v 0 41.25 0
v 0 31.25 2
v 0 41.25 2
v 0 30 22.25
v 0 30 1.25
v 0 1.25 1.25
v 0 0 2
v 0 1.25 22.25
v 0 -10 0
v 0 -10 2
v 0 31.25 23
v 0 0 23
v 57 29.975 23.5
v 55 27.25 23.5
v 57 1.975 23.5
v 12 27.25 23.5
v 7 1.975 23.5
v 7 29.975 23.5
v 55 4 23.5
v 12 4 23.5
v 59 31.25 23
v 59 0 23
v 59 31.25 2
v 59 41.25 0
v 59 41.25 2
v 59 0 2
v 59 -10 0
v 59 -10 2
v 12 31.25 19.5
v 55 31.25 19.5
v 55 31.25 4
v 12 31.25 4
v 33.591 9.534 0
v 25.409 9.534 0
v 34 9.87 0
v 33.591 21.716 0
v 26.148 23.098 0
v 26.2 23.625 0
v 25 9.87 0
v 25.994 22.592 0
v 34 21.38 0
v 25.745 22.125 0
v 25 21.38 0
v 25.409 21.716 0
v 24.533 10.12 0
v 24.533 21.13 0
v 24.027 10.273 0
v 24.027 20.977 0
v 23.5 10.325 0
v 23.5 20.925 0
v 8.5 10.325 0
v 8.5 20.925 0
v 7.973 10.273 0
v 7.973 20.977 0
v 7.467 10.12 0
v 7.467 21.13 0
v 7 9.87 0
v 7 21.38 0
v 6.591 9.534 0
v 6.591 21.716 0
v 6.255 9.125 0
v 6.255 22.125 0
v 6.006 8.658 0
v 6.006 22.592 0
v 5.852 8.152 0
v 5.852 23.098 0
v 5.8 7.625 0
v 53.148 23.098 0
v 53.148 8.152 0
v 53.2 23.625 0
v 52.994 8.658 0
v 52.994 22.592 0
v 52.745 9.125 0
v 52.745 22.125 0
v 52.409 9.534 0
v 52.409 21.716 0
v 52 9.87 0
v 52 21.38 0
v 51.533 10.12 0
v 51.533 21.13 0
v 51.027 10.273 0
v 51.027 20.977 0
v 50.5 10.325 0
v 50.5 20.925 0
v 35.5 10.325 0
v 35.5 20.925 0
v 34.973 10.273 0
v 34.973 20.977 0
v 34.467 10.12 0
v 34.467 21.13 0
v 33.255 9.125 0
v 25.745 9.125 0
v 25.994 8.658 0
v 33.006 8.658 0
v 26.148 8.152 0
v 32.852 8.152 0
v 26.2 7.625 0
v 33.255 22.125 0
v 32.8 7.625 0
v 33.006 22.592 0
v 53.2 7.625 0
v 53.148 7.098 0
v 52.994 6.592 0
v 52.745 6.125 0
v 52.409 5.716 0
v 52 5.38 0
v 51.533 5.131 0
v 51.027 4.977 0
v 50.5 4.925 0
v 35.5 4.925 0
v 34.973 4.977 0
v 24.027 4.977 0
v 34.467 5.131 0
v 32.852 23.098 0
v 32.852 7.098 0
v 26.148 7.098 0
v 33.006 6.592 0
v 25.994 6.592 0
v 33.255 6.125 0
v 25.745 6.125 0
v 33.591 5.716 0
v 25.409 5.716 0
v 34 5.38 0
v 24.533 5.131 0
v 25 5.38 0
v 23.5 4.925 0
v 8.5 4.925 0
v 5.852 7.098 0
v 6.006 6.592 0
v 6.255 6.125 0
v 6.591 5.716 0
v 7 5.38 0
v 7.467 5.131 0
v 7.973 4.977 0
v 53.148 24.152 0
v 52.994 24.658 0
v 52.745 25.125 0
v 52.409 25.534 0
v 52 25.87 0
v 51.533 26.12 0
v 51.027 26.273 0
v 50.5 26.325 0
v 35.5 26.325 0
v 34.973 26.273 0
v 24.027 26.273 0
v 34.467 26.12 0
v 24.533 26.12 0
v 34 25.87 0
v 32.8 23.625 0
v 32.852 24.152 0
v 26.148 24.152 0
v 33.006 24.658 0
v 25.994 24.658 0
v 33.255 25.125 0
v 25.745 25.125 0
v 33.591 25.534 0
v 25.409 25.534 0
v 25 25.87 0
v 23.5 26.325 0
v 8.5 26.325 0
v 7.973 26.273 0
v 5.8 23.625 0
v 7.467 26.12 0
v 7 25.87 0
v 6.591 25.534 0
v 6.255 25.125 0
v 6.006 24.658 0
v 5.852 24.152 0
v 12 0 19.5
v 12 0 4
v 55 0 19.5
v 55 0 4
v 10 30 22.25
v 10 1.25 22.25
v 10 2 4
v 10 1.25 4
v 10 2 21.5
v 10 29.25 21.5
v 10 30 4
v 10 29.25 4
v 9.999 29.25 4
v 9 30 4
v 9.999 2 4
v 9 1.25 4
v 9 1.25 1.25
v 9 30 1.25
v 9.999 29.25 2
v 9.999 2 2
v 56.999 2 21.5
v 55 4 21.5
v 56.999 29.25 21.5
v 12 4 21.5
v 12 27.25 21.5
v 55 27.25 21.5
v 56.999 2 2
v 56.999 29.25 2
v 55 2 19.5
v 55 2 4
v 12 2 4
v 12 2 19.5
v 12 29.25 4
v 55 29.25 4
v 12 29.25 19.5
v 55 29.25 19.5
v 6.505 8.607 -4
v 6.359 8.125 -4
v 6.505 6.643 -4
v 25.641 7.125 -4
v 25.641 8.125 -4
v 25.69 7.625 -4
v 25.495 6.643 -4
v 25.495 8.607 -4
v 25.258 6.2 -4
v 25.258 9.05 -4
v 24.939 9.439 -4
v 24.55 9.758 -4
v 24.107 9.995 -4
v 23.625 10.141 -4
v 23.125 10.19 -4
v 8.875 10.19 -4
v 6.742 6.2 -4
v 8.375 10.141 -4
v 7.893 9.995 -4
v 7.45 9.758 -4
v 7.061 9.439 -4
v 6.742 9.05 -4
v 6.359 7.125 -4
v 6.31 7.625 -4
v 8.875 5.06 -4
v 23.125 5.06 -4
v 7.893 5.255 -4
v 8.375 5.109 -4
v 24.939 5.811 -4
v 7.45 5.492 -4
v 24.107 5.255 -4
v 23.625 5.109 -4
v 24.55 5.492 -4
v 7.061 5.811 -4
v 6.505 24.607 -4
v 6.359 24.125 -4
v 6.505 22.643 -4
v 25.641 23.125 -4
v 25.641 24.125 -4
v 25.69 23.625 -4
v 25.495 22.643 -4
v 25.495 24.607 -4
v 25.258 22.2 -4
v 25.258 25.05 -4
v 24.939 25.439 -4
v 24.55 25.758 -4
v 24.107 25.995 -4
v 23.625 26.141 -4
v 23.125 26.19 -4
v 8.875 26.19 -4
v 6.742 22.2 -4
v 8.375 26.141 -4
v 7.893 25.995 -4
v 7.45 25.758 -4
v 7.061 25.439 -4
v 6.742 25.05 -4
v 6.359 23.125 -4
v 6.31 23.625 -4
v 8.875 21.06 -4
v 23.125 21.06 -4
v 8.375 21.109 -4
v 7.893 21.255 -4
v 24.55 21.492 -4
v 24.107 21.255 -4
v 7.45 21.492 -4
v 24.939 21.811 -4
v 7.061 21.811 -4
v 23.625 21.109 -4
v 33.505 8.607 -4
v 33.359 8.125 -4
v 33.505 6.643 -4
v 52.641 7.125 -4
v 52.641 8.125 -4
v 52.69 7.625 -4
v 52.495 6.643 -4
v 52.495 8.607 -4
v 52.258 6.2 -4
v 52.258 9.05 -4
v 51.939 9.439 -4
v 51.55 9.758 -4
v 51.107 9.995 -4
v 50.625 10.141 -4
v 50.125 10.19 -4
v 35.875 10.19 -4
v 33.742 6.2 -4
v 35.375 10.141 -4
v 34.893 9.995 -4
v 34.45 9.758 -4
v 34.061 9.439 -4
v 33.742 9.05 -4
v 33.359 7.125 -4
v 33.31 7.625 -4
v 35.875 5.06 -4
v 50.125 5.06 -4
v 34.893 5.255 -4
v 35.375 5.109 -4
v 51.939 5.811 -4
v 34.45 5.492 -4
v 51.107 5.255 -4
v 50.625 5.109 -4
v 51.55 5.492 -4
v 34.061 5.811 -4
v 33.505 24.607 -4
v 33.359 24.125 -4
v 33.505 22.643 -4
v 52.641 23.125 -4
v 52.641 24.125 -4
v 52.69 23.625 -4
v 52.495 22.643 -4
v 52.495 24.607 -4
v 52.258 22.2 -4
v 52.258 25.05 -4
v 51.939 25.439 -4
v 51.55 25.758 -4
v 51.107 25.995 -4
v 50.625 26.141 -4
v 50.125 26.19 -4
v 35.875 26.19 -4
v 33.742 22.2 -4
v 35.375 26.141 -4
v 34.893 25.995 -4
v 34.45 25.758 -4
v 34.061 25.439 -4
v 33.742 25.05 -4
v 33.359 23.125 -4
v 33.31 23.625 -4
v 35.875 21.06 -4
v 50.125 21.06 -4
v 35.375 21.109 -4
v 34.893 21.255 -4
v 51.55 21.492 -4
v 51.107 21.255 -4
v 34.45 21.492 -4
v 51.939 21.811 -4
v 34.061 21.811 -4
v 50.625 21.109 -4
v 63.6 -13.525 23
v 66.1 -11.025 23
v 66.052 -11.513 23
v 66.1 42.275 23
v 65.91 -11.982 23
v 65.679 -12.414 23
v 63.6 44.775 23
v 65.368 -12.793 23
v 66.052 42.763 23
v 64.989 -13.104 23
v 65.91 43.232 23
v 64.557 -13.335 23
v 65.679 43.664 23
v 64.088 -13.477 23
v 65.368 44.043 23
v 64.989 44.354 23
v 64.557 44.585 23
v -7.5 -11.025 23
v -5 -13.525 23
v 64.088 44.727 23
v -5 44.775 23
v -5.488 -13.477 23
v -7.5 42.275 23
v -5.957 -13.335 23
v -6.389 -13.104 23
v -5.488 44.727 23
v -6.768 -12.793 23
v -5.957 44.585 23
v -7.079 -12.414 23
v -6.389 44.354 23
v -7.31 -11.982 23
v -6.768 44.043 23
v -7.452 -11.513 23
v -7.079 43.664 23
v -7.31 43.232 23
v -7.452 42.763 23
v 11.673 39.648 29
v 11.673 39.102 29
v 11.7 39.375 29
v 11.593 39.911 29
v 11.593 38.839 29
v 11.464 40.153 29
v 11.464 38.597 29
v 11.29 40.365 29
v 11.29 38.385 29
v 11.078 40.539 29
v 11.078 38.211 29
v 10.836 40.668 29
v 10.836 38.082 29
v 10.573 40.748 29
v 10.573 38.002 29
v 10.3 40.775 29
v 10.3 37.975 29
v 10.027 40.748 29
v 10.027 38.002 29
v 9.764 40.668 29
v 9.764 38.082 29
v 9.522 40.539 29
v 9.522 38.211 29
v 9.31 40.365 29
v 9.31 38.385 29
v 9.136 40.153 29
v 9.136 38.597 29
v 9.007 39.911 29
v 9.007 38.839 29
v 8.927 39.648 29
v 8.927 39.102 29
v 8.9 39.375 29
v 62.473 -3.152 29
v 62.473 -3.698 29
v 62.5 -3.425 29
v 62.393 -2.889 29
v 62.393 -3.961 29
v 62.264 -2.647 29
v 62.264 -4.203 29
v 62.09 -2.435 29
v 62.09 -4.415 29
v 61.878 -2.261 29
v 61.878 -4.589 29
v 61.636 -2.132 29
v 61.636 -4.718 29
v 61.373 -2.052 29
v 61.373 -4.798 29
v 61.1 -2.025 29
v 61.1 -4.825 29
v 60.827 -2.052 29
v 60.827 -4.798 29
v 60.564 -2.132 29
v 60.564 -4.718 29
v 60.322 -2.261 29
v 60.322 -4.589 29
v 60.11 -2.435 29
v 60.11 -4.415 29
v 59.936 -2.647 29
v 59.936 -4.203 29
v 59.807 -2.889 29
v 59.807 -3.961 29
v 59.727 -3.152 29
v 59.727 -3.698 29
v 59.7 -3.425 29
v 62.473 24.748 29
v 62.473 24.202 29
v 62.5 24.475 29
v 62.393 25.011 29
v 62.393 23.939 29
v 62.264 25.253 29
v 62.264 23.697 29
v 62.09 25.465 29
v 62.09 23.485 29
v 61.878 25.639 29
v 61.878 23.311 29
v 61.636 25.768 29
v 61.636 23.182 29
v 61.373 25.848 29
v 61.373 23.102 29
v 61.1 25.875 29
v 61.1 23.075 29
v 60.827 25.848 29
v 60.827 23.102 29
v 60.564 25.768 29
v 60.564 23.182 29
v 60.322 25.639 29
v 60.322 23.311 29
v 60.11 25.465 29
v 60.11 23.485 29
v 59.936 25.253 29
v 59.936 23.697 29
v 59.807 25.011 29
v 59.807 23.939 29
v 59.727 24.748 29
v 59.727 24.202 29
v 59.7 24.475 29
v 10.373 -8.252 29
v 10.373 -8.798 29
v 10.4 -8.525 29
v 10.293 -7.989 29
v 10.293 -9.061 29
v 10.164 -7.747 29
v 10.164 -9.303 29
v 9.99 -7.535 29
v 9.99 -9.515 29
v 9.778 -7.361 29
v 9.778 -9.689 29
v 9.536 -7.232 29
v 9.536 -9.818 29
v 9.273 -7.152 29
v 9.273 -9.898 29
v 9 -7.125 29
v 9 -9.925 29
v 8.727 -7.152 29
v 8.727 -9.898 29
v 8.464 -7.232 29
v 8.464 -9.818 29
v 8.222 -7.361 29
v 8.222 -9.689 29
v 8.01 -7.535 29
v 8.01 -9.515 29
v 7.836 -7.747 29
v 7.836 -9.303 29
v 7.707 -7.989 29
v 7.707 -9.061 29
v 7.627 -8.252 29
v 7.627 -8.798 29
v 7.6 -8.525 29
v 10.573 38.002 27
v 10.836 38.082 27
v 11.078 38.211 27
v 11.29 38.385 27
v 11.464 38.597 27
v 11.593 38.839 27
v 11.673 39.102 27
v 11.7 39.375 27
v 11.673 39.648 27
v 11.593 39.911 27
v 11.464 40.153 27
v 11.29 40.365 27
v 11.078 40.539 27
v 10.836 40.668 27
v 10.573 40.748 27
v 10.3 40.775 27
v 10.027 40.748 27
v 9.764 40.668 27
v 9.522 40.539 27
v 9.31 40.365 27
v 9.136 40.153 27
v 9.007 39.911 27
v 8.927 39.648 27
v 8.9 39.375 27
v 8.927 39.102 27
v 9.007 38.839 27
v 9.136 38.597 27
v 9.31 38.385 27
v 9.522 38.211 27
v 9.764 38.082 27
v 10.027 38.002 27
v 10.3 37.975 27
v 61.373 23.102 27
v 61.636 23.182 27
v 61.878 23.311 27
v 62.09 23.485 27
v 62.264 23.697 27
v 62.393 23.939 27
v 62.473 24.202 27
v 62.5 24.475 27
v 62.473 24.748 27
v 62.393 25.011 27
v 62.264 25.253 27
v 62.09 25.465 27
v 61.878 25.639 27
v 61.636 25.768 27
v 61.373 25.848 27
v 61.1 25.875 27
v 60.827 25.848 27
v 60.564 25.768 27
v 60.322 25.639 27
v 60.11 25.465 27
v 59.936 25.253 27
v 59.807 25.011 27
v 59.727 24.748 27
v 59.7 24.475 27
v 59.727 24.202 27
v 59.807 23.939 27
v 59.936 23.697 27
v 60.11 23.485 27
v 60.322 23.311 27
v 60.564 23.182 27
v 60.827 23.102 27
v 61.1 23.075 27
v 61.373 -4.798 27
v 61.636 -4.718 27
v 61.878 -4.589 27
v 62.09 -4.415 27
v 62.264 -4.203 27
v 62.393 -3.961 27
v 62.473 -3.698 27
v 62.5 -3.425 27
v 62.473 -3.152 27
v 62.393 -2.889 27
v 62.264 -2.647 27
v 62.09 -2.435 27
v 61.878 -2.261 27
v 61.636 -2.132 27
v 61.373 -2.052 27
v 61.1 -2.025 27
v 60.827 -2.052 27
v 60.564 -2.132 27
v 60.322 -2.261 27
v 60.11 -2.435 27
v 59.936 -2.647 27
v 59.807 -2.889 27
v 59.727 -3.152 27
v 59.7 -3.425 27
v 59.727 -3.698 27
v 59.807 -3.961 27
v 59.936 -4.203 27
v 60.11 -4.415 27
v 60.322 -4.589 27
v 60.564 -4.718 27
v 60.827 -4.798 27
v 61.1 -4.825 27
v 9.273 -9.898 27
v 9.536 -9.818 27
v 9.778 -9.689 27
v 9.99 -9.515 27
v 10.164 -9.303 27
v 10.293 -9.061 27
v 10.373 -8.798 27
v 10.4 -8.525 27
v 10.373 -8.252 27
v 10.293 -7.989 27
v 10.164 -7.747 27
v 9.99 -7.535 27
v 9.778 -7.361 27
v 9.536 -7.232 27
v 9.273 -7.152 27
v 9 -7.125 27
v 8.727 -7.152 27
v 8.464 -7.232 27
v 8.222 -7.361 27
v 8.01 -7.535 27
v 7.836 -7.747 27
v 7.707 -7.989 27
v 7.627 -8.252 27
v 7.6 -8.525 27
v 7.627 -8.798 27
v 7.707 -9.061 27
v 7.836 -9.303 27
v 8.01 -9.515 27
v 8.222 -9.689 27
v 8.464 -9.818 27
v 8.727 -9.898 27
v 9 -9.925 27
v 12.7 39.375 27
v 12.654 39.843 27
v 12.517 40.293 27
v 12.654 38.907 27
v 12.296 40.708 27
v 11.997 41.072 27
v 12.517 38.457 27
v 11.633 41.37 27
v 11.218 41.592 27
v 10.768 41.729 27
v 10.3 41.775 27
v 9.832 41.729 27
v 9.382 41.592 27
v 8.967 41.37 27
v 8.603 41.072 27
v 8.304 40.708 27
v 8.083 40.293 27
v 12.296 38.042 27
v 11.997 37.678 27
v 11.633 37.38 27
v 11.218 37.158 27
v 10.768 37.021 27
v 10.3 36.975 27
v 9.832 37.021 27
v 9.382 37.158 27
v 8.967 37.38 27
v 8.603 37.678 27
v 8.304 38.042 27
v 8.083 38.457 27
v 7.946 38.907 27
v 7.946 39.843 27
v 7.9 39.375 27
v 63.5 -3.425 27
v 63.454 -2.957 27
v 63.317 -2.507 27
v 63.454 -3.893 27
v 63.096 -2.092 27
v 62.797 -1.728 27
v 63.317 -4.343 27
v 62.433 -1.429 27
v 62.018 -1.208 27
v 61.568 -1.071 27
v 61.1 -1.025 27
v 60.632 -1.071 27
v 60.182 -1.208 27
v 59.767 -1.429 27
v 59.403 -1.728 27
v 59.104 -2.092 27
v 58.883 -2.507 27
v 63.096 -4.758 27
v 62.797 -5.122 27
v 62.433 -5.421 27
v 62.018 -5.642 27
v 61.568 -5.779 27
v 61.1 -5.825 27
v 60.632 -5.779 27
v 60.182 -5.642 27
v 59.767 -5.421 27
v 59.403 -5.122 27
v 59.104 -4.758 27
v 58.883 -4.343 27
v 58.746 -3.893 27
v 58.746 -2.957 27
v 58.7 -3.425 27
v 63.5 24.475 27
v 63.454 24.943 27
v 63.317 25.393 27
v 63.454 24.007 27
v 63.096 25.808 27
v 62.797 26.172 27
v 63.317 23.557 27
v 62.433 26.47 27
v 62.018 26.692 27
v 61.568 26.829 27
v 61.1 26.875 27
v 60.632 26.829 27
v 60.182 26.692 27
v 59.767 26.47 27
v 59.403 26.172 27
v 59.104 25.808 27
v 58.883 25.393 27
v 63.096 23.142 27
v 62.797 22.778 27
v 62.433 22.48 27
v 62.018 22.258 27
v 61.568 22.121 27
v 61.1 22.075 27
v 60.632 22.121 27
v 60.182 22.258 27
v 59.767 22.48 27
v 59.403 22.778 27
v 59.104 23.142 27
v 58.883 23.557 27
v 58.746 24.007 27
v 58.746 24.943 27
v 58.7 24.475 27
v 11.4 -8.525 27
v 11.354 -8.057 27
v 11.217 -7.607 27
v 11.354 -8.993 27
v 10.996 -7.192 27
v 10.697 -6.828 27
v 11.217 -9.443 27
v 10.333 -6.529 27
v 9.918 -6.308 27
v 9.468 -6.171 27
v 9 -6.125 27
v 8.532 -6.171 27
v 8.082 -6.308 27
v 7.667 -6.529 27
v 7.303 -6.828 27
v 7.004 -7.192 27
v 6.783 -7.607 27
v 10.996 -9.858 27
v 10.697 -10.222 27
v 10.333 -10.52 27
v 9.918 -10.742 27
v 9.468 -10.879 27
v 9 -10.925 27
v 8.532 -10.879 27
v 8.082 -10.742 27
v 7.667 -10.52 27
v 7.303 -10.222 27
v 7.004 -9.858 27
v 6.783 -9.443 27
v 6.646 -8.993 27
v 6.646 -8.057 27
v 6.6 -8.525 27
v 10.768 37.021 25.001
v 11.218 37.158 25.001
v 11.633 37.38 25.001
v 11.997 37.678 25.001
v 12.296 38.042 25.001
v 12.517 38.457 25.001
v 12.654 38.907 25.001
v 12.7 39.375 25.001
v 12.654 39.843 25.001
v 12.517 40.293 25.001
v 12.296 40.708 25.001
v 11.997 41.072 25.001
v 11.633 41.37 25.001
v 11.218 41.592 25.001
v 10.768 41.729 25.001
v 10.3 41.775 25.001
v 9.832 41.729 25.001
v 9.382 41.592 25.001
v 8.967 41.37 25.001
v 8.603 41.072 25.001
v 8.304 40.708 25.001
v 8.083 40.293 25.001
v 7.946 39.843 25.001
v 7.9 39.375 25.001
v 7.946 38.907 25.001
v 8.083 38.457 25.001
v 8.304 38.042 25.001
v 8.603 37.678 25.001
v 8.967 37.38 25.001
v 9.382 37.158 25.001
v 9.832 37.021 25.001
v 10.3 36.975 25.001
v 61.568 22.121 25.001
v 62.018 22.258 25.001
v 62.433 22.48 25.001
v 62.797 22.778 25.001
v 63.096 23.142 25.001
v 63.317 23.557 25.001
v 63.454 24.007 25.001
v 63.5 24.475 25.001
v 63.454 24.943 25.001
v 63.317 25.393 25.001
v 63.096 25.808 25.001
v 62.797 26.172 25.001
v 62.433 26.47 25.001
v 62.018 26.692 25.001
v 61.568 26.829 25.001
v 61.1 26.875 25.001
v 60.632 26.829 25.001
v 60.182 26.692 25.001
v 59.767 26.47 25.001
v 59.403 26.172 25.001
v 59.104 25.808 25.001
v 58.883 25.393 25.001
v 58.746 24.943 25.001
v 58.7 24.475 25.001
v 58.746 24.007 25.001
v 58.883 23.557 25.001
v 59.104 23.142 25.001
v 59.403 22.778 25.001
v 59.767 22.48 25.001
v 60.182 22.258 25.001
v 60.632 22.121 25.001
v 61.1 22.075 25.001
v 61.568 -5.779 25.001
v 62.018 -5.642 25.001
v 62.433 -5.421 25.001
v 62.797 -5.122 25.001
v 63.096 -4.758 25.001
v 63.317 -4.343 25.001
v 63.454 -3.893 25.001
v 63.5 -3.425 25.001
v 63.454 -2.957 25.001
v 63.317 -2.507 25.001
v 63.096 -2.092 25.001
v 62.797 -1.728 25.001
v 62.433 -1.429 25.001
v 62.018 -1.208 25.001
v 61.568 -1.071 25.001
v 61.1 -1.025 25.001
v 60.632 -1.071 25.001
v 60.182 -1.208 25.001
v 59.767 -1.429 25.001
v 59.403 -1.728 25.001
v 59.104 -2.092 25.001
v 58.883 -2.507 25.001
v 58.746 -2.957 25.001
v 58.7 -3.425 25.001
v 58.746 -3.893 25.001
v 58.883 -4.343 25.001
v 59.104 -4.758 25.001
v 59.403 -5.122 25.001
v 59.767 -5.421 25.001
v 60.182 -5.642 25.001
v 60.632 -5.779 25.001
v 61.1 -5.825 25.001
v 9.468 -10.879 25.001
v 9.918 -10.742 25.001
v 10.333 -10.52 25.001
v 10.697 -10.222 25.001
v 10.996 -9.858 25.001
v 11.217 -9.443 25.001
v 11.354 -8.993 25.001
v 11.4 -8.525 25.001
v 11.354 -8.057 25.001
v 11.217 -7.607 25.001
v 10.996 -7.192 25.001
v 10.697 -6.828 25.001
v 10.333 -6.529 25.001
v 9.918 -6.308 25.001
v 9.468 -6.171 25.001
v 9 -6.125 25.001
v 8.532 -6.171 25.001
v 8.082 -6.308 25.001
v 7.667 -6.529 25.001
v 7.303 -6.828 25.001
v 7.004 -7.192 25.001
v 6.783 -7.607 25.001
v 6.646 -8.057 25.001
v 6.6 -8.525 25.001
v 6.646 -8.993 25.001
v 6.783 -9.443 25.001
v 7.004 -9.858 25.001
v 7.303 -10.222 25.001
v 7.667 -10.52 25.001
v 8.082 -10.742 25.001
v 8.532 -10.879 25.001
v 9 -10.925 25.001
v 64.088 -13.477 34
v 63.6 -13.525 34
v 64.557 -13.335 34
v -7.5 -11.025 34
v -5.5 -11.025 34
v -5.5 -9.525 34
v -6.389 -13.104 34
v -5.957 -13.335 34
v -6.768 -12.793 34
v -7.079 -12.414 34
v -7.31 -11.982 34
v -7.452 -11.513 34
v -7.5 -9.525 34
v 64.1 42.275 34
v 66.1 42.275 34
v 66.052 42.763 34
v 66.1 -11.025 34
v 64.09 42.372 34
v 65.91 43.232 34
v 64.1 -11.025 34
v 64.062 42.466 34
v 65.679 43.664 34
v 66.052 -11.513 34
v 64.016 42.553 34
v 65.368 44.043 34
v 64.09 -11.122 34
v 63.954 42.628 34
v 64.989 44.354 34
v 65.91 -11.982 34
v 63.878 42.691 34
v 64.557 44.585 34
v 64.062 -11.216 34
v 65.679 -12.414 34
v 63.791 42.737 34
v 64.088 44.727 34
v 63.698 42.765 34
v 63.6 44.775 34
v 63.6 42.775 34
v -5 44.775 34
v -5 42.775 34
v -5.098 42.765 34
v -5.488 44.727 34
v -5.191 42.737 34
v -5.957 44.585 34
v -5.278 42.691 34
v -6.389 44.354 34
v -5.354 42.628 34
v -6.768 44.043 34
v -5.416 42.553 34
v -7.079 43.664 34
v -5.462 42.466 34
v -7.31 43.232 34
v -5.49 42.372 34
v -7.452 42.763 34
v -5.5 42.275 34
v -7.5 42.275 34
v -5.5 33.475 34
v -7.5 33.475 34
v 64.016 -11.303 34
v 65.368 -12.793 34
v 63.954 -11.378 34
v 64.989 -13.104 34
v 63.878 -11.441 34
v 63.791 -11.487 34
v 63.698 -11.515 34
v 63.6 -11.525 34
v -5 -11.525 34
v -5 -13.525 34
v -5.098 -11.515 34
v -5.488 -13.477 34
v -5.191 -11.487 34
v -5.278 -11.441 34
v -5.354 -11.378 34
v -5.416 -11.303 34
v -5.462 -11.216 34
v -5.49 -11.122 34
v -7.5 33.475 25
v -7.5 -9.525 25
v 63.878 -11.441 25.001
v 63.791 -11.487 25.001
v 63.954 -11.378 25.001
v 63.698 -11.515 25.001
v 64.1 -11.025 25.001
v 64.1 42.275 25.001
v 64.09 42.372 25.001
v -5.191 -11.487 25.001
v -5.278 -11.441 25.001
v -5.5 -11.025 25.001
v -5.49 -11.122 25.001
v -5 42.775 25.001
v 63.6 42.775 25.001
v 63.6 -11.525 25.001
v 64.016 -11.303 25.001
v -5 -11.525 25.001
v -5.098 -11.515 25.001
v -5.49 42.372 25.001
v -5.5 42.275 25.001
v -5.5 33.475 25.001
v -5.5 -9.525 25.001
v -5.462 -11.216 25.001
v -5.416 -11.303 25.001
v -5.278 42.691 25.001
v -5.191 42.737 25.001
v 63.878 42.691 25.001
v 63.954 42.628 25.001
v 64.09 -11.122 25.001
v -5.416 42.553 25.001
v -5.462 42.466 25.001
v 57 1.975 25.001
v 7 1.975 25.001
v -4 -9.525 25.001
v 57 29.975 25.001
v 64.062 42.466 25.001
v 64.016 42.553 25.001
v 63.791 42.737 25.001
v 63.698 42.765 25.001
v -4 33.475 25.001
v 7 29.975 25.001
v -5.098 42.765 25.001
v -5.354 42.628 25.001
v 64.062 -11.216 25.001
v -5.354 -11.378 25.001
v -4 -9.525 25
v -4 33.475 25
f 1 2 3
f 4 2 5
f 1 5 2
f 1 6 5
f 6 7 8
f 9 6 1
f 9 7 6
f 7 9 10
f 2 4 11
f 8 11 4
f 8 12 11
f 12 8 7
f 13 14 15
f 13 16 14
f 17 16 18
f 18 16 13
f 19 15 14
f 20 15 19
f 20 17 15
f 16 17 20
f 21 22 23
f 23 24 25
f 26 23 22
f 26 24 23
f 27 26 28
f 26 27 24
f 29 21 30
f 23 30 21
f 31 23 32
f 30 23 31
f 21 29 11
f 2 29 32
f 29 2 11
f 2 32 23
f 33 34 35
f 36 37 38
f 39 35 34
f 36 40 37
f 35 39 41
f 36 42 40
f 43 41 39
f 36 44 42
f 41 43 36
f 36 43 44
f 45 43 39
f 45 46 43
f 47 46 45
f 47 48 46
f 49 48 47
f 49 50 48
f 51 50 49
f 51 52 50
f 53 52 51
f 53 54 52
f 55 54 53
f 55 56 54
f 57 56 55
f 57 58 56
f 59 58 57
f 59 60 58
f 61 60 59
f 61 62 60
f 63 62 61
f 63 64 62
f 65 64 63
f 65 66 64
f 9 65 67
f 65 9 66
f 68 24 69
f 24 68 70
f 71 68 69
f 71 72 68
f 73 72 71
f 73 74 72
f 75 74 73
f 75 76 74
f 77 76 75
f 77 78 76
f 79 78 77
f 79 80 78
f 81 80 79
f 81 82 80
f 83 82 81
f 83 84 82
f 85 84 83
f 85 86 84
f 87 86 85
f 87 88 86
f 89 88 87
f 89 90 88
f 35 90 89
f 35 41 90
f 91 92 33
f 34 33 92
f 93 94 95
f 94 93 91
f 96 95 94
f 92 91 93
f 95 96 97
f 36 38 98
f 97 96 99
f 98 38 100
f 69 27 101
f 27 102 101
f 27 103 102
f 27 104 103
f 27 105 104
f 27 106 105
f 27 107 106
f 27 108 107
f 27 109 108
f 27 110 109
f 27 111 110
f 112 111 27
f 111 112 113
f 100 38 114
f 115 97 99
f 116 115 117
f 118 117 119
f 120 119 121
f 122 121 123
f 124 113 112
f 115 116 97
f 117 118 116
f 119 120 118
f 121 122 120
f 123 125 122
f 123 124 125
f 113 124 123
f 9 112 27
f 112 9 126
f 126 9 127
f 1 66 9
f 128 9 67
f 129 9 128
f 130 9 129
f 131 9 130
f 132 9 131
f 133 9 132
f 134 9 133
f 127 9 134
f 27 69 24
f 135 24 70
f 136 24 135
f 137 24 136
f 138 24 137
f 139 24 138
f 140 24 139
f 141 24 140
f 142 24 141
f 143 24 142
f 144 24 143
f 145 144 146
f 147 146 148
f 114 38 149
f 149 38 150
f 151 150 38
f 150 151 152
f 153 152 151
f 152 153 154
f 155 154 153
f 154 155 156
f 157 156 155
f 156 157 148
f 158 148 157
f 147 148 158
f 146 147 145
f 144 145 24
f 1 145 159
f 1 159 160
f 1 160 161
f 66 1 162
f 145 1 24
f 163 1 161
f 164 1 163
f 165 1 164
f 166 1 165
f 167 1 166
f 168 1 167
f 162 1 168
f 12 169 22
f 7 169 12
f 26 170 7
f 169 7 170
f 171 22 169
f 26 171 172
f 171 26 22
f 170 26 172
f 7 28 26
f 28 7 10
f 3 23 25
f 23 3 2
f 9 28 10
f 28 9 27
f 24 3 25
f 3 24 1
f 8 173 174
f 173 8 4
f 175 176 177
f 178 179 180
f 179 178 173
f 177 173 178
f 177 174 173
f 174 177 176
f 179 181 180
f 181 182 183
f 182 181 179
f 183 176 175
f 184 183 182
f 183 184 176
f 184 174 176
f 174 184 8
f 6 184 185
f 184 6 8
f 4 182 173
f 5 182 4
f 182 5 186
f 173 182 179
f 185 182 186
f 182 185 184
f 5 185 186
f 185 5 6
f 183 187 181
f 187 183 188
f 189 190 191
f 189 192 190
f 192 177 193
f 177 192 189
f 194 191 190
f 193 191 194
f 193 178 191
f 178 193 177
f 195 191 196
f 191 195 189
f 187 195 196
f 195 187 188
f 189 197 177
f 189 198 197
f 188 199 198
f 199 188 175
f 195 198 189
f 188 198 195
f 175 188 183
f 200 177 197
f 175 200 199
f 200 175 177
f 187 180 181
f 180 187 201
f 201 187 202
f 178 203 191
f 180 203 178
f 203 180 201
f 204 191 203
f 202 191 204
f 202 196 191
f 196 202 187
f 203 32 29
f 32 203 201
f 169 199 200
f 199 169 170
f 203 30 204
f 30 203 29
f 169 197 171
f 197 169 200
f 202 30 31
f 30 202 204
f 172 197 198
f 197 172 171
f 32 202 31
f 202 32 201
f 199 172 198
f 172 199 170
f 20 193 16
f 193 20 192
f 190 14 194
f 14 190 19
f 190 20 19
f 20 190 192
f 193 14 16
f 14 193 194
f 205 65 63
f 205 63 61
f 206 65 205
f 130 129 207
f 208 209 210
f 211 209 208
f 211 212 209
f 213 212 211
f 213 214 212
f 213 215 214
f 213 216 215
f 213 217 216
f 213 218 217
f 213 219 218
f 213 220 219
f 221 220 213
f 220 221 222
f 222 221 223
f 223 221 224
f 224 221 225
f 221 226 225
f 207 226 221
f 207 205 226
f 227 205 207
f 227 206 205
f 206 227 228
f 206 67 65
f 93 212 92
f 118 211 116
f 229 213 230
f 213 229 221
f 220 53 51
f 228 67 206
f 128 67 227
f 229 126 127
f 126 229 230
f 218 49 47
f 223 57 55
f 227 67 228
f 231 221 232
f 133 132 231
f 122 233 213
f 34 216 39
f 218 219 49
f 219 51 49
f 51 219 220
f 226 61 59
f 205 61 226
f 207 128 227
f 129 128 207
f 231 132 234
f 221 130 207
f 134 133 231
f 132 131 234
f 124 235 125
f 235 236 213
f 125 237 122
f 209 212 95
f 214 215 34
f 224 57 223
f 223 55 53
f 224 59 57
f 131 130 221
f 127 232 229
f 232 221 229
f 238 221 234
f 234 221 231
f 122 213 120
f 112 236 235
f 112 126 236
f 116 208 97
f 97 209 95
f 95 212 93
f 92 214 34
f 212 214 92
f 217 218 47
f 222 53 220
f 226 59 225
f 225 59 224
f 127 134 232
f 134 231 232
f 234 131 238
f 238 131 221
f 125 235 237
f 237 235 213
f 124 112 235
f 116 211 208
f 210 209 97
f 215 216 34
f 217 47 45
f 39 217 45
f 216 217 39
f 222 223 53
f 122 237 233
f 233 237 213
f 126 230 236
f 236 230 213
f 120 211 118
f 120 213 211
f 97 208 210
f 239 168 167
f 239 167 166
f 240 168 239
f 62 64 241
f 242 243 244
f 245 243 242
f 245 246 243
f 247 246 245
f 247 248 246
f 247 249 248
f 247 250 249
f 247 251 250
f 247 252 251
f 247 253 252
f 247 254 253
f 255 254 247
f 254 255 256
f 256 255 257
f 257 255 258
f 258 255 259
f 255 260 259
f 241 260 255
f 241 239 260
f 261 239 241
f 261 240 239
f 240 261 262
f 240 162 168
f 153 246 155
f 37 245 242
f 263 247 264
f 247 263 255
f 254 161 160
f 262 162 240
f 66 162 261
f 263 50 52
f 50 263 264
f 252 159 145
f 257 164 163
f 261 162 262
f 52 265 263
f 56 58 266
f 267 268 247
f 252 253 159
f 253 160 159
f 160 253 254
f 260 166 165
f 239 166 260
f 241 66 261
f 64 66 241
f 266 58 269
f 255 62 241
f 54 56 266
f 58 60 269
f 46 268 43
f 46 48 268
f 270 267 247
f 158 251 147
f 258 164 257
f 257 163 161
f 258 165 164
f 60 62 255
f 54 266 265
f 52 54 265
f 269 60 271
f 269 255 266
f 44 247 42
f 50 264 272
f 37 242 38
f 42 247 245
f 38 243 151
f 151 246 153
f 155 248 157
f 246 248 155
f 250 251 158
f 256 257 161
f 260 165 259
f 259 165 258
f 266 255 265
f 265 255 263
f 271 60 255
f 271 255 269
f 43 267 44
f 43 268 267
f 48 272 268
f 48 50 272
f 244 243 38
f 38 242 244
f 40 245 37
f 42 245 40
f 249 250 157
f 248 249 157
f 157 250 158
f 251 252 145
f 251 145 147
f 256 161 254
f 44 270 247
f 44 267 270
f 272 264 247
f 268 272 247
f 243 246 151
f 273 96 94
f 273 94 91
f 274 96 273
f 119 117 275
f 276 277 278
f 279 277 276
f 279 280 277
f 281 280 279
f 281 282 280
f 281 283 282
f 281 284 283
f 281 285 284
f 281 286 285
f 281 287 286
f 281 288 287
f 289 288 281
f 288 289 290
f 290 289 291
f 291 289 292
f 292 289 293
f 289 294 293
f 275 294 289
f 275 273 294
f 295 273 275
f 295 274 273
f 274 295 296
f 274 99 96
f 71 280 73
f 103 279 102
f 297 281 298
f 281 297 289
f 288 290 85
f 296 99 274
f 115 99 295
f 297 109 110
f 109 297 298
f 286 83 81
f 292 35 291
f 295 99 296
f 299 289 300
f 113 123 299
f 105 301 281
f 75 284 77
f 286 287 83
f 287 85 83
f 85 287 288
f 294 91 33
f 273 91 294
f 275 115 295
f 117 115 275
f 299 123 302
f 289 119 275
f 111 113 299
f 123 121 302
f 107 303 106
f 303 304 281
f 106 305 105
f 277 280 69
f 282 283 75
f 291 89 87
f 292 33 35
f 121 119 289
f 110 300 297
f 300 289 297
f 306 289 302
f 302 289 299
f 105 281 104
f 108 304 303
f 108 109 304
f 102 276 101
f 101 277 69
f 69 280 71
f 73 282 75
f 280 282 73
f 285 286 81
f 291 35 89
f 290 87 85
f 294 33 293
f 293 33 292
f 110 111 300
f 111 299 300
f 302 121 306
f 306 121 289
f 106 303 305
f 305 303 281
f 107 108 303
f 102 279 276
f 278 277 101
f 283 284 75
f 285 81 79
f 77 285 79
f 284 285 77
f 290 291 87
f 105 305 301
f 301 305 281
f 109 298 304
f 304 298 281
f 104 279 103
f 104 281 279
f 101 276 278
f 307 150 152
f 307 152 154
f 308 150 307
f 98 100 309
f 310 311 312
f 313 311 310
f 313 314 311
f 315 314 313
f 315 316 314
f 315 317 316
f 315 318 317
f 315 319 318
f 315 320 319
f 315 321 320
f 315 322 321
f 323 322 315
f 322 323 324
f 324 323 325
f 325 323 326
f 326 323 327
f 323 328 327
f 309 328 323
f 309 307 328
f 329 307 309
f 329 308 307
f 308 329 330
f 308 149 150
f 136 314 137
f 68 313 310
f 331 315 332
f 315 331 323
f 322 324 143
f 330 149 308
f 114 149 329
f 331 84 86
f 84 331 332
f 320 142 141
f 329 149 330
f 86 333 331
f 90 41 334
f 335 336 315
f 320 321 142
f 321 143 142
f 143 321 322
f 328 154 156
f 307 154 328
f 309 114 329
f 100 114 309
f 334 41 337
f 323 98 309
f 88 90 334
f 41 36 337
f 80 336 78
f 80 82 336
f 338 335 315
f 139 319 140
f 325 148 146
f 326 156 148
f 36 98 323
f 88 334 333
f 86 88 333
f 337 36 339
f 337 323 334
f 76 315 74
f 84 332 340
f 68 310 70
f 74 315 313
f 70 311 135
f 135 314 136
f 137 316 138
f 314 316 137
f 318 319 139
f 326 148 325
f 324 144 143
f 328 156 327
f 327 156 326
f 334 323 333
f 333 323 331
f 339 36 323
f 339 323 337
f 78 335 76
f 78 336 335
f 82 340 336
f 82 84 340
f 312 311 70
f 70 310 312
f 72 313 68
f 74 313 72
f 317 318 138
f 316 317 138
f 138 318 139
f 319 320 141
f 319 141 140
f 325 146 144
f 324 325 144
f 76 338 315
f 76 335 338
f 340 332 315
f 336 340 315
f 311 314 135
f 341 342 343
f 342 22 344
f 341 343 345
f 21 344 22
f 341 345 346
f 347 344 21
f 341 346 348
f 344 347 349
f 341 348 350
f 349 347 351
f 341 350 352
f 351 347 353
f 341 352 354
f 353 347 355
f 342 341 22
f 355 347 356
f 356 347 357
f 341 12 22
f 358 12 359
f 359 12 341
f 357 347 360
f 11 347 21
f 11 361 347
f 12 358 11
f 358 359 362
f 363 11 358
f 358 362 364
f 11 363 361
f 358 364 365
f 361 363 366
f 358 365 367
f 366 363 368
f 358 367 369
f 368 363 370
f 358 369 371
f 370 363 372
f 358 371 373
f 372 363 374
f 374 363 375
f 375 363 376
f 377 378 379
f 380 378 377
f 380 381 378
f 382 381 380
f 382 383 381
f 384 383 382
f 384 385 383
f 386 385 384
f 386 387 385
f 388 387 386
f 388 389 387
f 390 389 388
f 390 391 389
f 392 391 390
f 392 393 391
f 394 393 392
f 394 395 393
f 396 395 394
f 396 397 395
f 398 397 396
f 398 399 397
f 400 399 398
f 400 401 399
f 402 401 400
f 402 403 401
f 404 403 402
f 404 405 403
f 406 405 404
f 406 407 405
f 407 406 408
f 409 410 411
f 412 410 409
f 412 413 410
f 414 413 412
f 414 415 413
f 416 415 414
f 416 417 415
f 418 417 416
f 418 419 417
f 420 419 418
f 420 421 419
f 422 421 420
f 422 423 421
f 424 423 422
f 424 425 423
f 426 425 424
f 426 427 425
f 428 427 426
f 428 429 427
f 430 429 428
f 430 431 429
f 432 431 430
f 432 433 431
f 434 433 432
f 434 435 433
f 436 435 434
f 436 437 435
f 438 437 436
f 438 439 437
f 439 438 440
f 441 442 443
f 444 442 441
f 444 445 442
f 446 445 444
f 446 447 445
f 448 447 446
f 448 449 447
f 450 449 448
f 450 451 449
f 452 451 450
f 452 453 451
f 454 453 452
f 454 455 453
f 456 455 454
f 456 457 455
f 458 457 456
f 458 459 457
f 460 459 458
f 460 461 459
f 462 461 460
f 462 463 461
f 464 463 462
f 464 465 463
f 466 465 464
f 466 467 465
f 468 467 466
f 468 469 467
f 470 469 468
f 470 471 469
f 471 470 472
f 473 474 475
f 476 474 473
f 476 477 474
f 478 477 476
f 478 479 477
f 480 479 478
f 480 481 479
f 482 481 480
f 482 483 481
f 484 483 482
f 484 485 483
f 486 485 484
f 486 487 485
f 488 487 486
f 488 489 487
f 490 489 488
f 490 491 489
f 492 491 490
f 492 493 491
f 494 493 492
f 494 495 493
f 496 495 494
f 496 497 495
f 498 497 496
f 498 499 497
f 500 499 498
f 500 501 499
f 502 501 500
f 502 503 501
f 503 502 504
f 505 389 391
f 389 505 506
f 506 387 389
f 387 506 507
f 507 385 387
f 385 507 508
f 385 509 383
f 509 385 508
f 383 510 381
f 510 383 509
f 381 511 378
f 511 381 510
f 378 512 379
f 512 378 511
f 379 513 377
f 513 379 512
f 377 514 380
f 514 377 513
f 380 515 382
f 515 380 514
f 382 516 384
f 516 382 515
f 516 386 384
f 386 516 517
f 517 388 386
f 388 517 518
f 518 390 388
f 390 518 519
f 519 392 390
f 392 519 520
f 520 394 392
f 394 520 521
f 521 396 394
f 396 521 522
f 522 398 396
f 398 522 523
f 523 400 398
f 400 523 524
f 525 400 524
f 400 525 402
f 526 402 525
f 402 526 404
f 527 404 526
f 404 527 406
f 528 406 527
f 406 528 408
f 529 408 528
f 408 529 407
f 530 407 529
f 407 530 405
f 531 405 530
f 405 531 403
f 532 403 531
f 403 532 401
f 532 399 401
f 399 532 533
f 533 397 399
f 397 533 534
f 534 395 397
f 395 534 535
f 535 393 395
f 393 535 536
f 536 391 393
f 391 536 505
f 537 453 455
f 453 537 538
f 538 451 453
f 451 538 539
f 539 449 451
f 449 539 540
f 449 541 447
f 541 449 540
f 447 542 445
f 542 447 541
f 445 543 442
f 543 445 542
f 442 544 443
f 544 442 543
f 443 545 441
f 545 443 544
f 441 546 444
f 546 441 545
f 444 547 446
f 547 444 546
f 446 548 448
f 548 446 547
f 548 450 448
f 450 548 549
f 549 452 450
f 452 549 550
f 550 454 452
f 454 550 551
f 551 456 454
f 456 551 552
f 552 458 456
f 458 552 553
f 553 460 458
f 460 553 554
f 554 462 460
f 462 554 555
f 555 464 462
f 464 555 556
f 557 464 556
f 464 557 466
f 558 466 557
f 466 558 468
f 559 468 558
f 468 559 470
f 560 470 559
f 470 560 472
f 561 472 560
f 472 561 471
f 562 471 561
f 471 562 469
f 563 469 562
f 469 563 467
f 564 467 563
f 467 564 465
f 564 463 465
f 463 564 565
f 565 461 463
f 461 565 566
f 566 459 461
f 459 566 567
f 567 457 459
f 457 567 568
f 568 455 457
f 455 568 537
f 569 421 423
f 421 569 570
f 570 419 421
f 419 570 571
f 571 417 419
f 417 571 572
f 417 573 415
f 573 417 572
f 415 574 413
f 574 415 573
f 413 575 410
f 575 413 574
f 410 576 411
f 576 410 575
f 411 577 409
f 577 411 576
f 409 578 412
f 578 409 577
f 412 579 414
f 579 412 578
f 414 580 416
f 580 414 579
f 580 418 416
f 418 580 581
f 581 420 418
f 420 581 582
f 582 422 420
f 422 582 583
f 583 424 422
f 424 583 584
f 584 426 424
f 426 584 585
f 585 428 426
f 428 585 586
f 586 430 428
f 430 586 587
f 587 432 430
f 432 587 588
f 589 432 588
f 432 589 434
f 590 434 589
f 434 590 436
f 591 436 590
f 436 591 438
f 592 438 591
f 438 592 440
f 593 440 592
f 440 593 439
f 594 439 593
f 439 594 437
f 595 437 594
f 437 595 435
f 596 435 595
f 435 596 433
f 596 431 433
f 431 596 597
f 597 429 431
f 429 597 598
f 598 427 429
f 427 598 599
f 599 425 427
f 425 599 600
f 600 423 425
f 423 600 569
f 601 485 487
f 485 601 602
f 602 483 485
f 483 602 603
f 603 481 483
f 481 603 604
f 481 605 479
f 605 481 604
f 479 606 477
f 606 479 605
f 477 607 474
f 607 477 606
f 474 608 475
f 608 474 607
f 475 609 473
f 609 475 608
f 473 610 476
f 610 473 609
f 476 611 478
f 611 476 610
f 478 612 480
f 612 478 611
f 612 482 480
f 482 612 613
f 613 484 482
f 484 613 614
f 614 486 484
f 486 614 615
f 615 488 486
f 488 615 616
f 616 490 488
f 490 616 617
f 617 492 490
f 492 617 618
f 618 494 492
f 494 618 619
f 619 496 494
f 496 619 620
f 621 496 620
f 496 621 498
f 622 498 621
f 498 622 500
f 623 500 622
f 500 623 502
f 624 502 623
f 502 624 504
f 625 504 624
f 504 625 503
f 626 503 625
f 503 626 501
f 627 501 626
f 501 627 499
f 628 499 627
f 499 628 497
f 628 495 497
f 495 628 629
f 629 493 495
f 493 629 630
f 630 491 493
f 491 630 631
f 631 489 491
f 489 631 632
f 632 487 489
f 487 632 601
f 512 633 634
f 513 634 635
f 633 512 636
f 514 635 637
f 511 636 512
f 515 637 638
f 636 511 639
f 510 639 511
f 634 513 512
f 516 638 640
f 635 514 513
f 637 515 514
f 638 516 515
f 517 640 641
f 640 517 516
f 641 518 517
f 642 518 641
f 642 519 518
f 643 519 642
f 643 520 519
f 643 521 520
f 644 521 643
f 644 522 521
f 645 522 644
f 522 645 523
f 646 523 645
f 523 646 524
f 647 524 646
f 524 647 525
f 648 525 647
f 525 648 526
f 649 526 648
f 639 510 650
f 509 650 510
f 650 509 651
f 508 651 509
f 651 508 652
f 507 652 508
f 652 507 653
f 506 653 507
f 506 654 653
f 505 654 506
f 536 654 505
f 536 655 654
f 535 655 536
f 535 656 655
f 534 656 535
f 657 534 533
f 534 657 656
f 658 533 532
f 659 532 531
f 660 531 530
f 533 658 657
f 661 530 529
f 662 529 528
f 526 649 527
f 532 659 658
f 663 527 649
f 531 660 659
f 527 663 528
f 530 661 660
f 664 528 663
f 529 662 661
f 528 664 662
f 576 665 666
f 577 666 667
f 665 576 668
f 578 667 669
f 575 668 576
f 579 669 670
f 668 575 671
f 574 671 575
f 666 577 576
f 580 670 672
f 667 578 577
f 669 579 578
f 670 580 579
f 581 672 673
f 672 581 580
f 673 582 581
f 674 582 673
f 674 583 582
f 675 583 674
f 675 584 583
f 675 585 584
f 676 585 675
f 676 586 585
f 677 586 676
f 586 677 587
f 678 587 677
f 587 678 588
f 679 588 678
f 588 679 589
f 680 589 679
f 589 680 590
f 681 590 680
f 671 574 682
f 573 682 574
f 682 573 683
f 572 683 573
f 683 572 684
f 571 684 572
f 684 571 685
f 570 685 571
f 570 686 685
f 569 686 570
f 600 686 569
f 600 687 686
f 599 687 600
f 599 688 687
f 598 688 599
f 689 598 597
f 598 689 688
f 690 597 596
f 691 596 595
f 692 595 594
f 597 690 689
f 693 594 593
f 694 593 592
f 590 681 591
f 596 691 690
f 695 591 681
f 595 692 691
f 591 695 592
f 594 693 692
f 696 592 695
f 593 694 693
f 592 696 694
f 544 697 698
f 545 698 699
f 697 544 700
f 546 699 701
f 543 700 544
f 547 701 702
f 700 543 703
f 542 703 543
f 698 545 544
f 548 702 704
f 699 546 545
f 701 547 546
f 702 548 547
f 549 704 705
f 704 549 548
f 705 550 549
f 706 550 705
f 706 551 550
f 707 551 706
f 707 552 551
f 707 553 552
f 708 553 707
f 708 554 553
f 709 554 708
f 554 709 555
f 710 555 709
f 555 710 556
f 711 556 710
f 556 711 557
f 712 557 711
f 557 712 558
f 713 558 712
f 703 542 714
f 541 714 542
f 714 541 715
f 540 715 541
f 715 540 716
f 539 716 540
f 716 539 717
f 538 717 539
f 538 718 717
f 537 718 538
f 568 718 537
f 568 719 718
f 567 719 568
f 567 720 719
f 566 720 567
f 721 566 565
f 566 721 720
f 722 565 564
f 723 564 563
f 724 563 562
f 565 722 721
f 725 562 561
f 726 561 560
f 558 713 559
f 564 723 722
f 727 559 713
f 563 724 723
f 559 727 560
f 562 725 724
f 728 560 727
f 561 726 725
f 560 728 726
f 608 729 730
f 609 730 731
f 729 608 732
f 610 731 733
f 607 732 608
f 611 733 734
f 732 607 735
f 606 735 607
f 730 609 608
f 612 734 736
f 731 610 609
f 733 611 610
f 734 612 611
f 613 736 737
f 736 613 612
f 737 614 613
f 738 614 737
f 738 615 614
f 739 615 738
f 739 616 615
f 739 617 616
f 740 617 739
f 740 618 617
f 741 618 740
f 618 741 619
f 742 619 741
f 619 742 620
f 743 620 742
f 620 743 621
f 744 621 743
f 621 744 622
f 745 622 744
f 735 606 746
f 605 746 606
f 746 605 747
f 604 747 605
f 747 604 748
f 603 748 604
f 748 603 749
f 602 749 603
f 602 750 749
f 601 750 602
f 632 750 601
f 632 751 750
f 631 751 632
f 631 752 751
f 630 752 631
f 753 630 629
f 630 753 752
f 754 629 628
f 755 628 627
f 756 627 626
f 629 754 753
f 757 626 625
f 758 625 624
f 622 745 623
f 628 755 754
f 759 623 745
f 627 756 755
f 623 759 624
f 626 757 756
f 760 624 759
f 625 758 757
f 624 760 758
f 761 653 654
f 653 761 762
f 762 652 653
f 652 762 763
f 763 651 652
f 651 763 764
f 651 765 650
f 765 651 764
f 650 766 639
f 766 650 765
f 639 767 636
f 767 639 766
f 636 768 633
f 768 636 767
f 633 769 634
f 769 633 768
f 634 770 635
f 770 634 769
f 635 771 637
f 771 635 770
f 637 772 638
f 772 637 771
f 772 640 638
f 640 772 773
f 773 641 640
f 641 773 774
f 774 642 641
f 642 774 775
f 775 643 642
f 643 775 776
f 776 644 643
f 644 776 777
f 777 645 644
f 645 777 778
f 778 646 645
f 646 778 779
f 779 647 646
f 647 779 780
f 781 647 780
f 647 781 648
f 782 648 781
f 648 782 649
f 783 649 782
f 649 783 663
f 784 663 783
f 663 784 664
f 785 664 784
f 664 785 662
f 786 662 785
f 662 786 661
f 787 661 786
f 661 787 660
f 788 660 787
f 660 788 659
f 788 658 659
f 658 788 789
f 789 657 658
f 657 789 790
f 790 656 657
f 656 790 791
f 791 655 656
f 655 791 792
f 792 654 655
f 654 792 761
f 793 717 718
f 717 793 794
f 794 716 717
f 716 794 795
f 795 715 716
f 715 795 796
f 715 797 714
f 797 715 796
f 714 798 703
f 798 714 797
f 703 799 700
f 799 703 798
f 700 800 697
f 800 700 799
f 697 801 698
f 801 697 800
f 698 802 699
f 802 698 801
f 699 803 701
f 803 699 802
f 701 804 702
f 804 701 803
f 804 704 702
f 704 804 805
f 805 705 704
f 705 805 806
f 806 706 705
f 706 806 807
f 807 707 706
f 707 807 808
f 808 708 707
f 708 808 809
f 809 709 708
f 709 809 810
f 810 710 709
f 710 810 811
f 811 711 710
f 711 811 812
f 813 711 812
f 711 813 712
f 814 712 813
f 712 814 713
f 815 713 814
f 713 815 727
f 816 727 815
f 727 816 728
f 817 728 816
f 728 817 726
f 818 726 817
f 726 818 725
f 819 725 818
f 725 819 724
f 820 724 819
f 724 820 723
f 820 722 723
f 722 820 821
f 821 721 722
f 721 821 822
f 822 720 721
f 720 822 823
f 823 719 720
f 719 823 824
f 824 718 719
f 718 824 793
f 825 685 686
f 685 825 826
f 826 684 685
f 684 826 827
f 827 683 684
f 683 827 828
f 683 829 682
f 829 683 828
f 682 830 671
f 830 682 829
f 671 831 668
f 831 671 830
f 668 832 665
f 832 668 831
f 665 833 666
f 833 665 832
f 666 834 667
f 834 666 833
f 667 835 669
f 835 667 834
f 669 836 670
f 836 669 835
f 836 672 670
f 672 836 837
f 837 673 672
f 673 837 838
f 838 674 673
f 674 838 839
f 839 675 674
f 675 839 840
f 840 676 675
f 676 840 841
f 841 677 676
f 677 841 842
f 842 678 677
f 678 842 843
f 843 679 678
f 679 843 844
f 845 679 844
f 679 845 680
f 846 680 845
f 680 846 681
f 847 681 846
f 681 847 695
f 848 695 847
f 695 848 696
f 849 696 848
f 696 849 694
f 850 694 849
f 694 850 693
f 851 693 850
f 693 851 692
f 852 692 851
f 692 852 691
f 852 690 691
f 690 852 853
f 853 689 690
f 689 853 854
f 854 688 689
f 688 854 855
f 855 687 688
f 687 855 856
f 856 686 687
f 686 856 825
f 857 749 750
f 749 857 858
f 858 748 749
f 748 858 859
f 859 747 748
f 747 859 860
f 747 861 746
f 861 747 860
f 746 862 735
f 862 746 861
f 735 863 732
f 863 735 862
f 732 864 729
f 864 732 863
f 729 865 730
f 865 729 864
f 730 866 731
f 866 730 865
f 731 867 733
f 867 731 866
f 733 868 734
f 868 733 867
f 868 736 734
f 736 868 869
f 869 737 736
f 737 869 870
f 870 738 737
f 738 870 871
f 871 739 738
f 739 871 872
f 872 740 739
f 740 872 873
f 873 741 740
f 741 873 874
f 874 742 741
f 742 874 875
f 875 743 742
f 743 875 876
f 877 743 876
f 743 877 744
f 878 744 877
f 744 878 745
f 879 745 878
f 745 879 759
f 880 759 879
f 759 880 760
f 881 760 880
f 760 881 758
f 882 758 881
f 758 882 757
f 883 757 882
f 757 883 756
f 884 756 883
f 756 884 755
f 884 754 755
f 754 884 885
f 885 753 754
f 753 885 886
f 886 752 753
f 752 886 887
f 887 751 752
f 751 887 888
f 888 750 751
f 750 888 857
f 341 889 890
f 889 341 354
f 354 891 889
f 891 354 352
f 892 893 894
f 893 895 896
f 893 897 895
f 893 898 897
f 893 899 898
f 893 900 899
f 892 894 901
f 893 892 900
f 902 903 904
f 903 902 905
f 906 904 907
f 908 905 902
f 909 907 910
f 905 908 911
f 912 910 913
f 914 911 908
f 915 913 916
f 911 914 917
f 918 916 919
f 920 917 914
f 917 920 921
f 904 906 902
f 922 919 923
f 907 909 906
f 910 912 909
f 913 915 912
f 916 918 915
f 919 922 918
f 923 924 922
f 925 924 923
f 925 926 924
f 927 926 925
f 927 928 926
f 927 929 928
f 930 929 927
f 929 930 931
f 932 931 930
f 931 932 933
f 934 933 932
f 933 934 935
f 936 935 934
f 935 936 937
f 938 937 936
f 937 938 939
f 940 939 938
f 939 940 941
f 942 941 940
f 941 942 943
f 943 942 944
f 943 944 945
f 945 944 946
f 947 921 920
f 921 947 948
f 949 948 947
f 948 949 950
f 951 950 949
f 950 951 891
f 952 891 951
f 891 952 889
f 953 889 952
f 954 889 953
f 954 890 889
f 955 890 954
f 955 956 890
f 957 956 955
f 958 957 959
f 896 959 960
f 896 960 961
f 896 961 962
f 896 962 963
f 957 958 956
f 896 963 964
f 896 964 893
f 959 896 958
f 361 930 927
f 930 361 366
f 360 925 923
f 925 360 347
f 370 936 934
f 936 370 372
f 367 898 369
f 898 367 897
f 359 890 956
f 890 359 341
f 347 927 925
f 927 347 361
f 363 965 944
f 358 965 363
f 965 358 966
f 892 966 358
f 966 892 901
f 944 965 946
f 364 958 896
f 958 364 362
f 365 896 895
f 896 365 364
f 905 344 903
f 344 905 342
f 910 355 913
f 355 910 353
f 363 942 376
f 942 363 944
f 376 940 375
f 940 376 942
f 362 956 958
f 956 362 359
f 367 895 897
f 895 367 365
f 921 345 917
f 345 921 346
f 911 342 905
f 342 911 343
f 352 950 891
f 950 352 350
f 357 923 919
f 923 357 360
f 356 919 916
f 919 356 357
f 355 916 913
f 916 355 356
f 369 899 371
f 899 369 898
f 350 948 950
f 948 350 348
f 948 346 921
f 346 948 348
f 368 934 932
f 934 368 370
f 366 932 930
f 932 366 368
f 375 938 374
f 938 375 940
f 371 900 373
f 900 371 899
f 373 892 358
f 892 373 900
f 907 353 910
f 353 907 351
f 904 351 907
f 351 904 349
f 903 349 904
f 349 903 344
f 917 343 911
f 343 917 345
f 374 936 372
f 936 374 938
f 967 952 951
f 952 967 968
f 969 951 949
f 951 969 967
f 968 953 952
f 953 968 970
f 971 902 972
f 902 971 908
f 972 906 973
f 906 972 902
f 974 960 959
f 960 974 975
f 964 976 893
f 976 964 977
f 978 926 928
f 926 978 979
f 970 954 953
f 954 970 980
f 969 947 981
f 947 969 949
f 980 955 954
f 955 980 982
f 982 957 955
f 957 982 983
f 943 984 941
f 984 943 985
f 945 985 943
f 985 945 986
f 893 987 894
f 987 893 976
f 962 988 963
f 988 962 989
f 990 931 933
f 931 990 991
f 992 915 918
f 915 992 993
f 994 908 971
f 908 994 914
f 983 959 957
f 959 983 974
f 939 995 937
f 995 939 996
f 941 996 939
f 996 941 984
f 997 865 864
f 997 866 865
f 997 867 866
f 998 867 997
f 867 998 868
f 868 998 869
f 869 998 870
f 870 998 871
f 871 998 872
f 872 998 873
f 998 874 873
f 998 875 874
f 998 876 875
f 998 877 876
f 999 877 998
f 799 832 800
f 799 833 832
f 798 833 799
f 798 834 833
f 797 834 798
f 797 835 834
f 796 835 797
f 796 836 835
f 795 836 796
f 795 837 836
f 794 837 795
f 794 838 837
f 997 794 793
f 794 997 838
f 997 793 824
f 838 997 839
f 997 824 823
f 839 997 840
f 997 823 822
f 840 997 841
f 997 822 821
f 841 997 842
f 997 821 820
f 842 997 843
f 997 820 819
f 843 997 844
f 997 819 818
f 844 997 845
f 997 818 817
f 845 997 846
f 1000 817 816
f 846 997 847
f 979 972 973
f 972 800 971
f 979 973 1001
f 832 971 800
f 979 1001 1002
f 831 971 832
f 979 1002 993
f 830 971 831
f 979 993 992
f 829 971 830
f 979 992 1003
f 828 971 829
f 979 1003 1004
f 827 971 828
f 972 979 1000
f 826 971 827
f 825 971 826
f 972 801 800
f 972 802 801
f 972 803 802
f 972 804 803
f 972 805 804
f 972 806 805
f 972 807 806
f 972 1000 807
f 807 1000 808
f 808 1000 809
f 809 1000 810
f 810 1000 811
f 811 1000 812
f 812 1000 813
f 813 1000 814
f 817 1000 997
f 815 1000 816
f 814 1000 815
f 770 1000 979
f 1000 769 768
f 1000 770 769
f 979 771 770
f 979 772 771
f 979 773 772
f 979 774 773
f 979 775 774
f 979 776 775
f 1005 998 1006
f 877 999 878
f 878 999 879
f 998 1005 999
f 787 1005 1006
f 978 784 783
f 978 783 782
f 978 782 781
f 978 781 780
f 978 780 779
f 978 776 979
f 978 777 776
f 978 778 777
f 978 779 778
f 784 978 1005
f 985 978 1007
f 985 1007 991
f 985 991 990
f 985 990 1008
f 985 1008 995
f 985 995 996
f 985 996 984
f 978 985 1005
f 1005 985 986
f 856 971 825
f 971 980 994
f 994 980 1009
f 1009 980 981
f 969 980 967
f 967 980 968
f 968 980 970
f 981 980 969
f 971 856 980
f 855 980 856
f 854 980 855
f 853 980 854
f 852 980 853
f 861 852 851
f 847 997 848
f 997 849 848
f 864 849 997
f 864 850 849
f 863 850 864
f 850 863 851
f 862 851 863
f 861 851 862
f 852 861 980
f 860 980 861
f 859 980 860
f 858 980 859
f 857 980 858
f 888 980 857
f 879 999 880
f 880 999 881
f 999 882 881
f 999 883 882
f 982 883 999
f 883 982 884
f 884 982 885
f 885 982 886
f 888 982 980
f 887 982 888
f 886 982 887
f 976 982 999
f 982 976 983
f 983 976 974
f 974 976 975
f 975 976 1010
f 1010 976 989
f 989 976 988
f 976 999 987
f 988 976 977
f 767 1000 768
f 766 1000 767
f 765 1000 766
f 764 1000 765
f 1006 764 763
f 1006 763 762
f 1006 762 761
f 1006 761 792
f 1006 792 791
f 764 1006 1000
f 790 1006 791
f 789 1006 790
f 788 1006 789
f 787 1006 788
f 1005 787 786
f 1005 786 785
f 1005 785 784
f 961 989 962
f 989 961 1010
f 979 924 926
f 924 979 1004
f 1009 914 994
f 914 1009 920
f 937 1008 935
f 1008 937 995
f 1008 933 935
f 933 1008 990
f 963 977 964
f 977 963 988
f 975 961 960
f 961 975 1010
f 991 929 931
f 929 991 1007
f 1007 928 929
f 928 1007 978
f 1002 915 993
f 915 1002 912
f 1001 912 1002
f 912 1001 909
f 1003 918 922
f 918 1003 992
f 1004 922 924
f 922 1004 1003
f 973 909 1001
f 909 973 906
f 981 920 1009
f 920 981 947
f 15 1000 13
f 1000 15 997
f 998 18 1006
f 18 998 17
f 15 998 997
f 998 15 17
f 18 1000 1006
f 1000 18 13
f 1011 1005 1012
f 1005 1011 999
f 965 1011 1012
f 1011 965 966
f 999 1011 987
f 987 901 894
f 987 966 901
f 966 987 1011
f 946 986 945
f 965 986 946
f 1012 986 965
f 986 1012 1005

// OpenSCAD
$fn=32;

slop = 1.5;
9vLength = 45.5  + slop;
9vHeight = 18    + slop;
9vWidth  = 25.75 + slop;

clipDepth = 10;
clipExtra = 1.5;

wallThickness = 2;

platformWidth  = 9vWidth + wallThickness* 2;
platformLength = 9vLength + wallThickness + clipDepth;
platformHeight = 9vHeight + wallThickness * 2;

slotWidth = 5.4;
slotOffset = 15;
slotLength = slotOffset + slotWidth;

slotYspacing = 16;
slotXspacing = 27;

arduinoWidth = 53.3;
arduinoLength = 68.6;

*intersection() {
  translate([5,0,0])
  cube([52.5,33,25]);
  union() {
    batteryPlatform();
    arduinoPlatform();
  }
}


batteryPlatform();
arduinoPlatform();




module batteryPlatform() {

  difference() {
    union () {
      cube([platformLength,platformWidth,platformHeight]);
      translate([0,-10,0])
      cube([platformLength,platformWidth+20,2]);
    }
    translate([-.001 + clipDepth,wallThickness,wallThickness])
    cube([9vLength,9vWidth,9vHeight]);
    
    o = 4;
    translate([platformLength-9vLength,-o,o])
    cube([9vLength-o,platformWidth + o*2,platformHeight-o*2]);

    translate([platformLength-9vLength,o,o])
    cube([9vLength-o,platformWidth - o*2,platformHeight+o]);


    union () {
    translate([
      -.001 + clipDepth-1,
      wallThickness-clipExtra/2,
      wallThickness+clipExtra+.5
    ])
    cube([1+.001,9vWidth+clipExtra,9vHeight+clipExtra-2.75]);
    
    translate([
      -.001,
      wallThickness-clipExtra/2,
      wallThickness-clipExtra/2
    ])
    cube([clipDepth-1+.001,9vWidth+clipExtra,9vHeight+clipExtra]);
    }
  }

  translate([
    platformLength/2 - (slotLength+slotXspacing)/2 + slotWidth/2,
    platformWidth/2 - (slotWidth+slotYspacing)/2 + slotWidth/2,
    0
  ])
  for (x = [0:1])
  for (y = [0:1])
  translate([27*x,16*y,0])
  slot();

}



module arduinoPlatform() {
  translate([
      -5,
      -(arduinoWidth-platformWidth)/2,
      platformHeight-wallThickness+clipExtra
    ]) {
    difference() {
      linear_extrude(11)
      offset(2.5)
      arduinoShape();

      translate([0,0,2.001])
      linear_extrude(10)
      offset(.5)
      arduinoShape();
      
      translate([12,13,-.001])
      linear_extrude(3)
      square([50,28]);

      translate([-3,1.5,2])
      cube([4,43,10]);
    }
    r = 3.2/2-.2;

    for (m = [0:1])
    linear_extrude(6-m*2) {
      translate([15.3,50.4])
      circle(r + m);
      translate([14,2.5])
      circle(r + m);
      translate([66.1,7.6])
      circle(r + m);
      translate([66.1,35.5])
      circle(r + m);
    }
  }
}


module arduinoShape() {
  polygon([
    [0,0],
    [0,arduinoWidth],
    [arduinoLength,arduinoWidth],
    [arduinoLength,0]
  ]);
}






*intersection() {
  translate([-2,-2,-1.5])
  cube([76,60,5]);
  mount();
}

*mount();




module mount() {

  translate([0,0,23]) {
    difference() {
      linear_extrude(8)
      offset(2.5)
      arduinoShape();

      translate([0,0,2.001])
      linear_extrude(7)
      offset(.5)
      arduinoShape();
      
      translate([3,3,-.001])
      linear_extrude(3)
      square([63,48]);

      translate([-3,1.5,2])
      cube([4,43,10]);
    }
    r = 3.2/2-.2;

    for (m = [0:1])
    linear_extrude(6-m*2) {
      translate([15.3,50.4])
      circle(r + m);
      translate([14,2.5])
      circle(r + m);
      translate([66.1,7.6])
      circle(r + m);
      translate([66.1,35.5])
      circle(r + m);
    }
  }

  for (i = [16.5:16:34]) {
    for (j = [5:27:45]) {
      if ((j > 110 && i > 30) || j < 110)
      translate([j+7,i+2,-.1])
      slot();
    }
  }

  difference() {
    linear_extrude(23)
    offset(2.5)
    arduinoShape();

    translate([0,0,1.501])
    linear_extrude(22)
    offset(.5)
    arduinoShape();
    
    translate([-3,3,5])
    linear_extrude(20)
    square([78,47.5]);

    translate([2,-3,5])
    linear_extrude(20)
    square([65,59.5]);
    
    l = 20;
    d = 15;
    for (x = [0:2])
    for (y = [0:2]) {
      translate([x*(l+3)+1, y*(d+3) + 1,-.001])
      linear_extrude(3)
      square([l,d]);
    }

  }



}

// x spacing: 27
// y spacing: 16
module slotX() {
  translate([0,0,-2])
  hull() {
    translate([15,0,0])
    cylinder(h=2,r=2.5);
    cylinder(h=2,r=2.5);
  }
}


module slot() {
  rotate([180,0,0])
  translate([slotOffset/2,0,0])
  linear_extrude(4,scale=.95)
  translate([-slotOffset/2,0,0])
  hull() {
    translate([slotOffset,0])
    circle(slotWidth/2);
    circle(slotWidth/2);
  }
}
